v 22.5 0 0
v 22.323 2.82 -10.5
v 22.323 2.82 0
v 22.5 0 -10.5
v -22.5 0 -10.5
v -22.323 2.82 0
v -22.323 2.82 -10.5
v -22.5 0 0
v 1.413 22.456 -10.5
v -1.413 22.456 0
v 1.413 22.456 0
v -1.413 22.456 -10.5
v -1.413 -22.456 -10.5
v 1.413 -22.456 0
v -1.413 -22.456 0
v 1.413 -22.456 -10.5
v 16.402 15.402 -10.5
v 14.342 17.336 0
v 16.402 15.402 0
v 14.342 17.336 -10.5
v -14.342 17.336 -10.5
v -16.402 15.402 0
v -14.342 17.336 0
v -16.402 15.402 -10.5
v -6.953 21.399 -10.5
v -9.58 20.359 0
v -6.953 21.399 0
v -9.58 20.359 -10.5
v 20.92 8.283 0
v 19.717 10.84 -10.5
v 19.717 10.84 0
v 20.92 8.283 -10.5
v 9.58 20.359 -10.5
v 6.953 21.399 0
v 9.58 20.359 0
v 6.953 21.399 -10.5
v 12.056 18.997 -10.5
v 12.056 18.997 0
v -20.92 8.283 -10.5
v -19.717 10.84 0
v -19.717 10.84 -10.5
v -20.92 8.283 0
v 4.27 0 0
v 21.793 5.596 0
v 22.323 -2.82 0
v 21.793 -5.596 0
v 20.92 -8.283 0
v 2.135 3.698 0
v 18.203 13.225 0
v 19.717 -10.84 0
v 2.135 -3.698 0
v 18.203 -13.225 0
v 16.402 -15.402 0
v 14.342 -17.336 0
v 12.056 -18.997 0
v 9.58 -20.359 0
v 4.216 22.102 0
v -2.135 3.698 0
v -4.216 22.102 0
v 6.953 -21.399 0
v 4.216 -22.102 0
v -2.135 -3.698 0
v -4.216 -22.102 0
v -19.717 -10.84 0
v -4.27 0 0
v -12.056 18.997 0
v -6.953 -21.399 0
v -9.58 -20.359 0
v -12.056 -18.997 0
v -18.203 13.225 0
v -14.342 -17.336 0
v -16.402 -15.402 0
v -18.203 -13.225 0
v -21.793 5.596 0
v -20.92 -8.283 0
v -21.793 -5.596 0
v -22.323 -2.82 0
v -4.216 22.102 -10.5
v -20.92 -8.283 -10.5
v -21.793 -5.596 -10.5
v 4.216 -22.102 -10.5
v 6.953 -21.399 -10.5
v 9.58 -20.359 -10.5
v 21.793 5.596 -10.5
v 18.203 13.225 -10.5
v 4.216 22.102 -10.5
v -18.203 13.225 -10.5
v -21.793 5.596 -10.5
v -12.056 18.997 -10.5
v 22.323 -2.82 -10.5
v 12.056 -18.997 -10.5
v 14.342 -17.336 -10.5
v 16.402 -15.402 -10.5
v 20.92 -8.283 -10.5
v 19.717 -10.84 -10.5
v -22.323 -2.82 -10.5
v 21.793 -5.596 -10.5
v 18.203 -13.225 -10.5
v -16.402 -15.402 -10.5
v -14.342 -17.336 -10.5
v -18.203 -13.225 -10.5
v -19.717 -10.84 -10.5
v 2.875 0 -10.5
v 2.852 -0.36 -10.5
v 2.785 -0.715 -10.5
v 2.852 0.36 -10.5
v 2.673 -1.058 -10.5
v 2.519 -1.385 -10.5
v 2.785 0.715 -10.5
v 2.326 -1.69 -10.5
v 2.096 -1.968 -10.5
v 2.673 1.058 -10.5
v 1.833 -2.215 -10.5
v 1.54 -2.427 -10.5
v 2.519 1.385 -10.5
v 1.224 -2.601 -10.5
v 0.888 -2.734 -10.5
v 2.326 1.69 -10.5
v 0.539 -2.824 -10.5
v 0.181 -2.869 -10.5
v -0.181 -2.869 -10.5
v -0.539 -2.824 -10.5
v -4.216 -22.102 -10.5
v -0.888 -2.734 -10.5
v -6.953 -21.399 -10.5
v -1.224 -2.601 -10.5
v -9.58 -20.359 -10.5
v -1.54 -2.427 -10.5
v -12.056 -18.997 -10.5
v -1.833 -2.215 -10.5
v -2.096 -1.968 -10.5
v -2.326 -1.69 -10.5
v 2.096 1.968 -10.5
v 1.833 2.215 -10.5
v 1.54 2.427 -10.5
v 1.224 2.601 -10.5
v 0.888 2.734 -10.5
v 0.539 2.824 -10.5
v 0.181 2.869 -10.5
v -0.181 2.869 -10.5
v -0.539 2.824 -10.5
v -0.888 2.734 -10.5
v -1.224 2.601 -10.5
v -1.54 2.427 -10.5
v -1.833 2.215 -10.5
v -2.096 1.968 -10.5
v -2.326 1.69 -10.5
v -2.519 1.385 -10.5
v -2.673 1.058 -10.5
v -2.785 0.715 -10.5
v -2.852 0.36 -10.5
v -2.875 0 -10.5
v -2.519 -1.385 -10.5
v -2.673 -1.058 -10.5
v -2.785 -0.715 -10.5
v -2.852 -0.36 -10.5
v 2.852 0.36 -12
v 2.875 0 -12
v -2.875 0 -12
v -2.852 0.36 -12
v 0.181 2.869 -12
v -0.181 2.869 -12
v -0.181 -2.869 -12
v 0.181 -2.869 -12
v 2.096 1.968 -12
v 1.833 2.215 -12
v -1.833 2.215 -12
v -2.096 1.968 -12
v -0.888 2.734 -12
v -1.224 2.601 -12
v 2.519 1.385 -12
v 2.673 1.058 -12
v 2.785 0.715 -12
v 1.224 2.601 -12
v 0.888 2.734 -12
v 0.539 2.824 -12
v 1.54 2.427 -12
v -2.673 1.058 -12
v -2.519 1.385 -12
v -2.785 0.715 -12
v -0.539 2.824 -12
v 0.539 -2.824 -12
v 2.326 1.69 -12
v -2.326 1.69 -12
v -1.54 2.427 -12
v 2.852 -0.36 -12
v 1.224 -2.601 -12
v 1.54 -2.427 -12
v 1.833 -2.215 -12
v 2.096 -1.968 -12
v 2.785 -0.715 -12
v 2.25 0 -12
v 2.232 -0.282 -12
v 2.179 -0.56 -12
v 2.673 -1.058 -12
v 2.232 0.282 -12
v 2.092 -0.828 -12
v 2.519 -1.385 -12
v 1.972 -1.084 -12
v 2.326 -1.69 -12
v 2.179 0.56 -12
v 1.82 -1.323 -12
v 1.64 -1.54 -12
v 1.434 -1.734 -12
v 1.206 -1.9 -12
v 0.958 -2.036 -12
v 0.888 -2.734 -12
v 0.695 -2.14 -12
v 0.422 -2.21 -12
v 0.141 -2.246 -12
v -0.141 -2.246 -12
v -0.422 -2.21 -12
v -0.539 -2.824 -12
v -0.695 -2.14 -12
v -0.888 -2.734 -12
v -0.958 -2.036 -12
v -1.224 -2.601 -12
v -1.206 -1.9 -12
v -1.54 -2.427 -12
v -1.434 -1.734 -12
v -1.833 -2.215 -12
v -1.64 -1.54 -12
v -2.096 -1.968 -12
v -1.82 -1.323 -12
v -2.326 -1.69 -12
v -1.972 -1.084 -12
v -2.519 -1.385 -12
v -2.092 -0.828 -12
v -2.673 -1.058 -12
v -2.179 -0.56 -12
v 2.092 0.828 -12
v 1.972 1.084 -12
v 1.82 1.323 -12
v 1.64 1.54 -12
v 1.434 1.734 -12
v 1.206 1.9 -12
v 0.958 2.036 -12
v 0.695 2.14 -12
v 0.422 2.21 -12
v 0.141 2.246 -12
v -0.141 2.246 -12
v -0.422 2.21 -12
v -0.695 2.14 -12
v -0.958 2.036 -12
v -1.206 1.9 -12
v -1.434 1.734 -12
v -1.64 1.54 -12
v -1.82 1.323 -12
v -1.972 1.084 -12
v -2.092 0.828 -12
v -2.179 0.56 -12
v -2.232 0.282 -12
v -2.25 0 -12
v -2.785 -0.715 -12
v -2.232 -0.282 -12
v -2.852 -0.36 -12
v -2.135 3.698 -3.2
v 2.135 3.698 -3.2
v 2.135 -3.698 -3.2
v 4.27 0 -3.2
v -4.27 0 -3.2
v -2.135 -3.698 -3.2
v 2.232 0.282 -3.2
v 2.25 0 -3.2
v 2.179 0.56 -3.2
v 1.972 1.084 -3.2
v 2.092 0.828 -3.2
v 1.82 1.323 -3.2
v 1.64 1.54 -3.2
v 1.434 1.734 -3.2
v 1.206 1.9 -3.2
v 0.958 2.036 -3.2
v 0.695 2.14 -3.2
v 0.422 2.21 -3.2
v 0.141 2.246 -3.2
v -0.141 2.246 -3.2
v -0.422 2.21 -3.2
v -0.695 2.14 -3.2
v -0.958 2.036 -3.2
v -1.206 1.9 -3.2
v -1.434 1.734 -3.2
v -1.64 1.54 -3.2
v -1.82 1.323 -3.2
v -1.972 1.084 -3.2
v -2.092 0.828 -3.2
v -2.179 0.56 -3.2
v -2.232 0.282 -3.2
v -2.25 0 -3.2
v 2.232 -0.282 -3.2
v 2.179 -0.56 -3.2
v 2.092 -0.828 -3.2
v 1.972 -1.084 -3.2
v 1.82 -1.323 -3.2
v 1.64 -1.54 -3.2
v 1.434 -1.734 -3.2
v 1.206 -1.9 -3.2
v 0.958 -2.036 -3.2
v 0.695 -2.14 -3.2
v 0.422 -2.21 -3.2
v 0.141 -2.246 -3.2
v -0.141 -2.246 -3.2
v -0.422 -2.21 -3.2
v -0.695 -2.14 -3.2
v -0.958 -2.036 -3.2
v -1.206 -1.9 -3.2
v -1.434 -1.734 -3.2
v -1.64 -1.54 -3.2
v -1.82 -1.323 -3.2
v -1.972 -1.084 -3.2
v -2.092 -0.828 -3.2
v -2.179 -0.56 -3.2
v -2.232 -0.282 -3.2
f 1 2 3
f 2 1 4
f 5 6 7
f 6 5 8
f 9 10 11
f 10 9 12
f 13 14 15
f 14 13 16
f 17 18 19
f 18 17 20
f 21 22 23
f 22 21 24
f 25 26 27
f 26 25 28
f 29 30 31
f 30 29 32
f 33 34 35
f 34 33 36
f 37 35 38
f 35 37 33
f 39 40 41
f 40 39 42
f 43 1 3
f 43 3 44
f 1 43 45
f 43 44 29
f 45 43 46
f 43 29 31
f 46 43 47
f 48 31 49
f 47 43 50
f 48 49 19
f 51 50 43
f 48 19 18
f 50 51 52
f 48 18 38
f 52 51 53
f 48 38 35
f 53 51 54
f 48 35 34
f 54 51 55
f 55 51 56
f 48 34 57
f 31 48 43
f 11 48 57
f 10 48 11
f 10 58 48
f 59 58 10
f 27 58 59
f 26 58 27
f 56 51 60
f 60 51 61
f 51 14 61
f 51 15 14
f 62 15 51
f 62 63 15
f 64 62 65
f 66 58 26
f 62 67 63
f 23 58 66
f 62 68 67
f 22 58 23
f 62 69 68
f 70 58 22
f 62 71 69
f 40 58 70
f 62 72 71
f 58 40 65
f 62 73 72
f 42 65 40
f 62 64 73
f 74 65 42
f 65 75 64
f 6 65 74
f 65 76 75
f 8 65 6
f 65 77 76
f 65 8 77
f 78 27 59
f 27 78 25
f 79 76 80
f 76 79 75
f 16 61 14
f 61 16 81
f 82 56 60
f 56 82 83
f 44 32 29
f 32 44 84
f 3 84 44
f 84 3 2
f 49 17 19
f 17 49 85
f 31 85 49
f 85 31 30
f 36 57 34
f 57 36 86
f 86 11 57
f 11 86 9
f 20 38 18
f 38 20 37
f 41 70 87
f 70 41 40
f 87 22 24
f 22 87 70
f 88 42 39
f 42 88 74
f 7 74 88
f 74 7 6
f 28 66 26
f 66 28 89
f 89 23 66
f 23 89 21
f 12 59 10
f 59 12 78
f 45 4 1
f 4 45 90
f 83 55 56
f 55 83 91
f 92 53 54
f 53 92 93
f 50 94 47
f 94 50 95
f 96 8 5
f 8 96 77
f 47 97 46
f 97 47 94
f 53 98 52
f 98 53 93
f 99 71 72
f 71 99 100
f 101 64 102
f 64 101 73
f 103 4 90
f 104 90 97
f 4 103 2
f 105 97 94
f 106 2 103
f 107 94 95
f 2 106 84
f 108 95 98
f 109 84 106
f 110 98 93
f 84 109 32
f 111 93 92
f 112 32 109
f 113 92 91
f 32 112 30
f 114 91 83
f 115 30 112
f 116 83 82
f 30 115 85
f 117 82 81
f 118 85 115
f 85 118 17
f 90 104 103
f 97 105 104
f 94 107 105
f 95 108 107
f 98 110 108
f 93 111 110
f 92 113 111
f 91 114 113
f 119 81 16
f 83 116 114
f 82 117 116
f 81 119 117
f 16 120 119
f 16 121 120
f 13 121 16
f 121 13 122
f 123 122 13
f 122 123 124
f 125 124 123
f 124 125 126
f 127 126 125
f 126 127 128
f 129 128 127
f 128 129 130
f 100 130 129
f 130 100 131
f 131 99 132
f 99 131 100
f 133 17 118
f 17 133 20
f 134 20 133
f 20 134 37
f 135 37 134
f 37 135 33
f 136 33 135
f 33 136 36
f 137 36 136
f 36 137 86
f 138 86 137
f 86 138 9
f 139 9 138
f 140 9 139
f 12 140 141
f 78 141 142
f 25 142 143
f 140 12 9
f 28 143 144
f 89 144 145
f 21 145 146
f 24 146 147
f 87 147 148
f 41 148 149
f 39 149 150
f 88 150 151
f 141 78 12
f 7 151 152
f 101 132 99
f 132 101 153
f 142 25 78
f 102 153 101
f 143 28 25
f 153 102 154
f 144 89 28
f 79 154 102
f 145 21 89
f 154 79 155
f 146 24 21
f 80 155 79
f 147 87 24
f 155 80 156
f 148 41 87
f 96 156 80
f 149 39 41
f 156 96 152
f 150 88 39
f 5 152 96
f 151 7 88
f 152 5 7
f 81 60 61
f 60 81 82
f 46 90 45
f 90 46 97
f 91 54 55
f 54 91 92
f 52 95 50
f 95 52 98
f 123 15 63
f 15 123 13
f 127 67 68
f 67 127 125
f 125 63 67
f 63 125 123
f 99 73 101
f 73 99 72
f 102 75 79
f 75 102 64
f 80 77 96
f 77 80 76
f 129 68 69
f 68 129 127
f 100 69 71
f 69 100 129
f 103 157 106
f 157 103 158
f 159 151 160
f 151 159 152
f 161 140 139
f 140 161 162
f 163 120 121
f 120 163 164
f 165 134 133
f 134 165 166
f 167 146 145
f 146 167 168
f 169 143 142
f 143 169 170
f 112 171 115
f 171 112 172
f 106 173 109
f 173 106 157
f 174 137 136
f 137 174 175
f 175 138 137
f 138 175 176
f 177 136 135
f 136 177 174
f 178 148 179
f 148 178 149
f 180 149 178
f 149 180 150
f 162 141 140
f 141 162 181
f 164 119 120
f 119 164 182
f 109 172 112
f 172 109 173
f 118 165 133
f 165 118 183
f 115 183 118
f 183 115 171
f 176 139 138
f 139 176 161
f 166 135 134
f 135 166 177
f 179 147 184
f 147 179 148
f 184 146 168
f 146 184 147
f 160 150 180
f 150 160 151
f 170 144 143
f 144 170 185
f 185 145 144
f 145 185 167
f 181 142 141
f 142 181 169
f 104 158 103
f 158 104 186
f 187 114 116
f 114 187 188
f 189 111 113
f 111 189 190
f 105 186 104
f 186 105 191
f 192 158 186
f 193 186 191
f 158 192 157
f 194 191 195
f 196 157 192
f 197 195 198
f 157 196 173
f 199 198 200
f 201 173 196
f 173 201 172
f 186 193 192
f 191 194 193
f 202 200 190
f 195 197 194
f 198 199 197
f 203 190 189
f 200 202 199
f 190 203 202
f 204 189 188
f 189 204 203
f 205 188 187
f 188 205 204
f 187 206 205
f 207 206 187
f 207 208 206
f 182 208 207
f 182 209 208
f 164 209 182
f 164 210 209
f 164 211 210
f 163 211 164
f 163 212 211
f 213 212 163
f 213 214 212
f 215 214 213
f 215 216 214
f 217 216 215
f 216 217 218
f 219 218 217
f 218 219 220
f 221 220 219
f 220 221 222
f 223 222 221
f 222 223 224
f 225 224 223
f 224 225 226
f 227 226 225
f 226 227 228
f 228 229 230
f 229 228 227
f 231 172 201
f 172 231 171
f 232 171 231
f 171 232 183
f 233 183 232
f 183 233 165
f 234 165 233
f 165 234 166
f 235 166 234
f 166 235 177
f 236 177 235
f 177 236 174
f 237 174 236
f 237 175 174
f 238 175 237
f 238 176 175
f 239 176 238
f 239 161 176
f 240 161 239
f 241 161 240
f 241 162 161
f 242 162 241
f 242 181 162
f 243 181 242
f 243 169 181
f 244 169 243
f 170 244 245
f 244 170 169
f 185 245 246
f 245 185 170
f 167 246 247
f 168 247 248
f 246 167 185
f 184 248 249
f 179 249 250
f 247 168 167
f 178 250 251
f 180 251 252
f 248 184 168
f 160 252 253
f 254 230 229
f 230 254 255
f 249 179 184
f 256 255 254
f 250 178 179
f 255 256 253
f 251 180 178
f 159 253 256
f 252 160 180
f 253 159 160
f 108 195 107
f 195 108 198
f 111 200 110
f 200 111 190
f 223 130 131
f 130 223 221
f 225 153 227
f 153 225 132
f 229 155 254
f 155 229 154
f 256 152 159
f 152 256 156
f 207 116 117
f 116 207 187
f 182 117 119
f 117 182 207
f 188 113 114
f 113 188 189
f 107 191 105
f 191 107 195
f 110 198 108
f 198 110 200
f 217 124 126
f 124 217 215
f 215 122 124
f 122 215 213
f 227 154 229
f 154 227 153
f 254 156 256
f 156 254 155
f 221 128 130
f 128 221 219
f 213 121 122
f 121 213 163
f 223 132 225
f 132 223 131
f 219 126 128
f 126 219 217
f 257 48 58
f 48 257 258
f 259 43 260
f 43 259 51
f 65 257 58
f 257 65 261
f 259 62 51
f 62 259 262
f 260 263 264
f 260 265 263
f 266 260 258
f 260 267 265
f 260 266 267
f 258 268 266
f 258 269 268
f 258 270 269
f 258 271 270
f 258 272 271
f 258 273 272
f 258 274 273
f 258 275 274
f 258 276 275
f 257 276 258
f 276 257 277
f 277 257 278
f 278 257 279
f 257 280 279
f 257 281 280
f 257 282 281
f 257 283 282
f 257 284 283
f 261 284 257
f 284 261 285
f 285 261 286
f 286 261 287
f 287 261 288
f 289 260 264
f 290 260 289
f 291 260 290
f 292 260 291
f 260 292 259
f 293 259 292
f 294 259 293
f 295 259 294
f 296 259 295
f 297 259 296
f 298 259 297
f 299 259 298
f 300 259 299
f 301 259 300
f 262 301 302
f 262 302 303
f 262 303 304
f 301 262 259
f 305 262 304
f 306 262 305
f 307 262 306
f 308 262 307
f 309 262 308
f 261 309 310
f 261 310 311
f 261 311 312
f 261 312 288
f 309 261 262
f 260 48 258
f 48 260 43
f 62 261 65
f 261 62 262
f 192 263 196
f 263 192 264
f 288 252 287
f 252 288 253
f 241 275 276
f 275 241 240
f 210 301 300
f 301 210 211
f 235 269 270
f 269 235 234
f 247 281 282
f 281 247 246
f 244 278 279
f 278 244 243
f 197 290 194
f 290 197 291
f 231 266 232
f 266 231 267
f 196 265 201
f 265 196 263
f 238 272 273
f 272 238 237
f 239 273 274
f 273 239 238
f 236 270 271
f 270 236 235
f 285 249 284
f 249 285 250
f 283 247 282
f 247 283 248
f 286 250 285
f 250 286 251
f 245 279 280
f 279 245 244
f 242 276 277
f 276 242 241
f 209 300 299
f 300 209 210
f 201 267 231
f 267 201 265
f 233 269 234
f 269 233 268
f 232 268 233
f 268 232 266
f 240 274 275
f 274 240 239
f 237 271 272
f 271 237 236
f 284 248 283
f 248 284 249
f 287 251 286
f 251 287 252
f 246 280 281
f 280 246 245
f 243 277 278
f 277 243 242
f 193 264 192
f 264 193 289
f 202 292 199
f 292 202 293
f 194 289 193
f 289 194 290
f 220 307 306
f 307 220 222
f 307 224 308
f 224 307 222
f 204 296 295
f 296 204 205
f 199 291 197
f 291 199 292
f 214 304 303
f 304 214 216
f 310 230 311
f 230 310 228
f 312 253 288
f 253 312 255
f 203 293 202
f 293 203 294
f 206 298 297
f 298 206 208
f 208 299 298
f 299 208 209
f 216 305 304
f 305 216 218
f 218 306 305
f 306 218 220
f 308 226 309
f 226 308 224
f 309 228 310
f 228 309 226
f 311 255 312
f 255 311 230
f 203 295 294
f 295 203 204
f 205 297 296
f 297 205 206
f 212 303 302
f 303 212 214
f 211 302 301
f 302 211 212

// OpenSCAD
$fn = 50;


difference() {
	union() {
		translate(v = [0, 0, -10.5000000000]) {
			cylinder(h = 10.5000000000, r = 22.5000000000);
		}
		translate(v = [0, 0, -12.0000000000]) {
			cylinder(h = 12, r = 2.8750000000);
		}
	}
	union() {
		translate(v = [0, 0, 0]) {
			rotate(a = [0, 0, 0]) {
				difference() {
					union() {
						translate(v = [0, 0, -3.2000000000]) {
							linear_extrude(height = 3.2000000000) {
								polygon(points = [[4.2698000000, 0.0000000000], [2.1349000000, 3.6977552691], [-2.1349000000, 3.6977552691], [-4.2698000000, 0.0000000000], [-2.1349000000, -3.6977552691], [2.1349000000, -3.6977552691]]);
							}
						}
					}
					union();
				}
			}
		}
		#translate(v = [0, 0, -100.0000000000]) {
			cylinder(h = 200, r = 2.2500000000);
		}
	}
}
